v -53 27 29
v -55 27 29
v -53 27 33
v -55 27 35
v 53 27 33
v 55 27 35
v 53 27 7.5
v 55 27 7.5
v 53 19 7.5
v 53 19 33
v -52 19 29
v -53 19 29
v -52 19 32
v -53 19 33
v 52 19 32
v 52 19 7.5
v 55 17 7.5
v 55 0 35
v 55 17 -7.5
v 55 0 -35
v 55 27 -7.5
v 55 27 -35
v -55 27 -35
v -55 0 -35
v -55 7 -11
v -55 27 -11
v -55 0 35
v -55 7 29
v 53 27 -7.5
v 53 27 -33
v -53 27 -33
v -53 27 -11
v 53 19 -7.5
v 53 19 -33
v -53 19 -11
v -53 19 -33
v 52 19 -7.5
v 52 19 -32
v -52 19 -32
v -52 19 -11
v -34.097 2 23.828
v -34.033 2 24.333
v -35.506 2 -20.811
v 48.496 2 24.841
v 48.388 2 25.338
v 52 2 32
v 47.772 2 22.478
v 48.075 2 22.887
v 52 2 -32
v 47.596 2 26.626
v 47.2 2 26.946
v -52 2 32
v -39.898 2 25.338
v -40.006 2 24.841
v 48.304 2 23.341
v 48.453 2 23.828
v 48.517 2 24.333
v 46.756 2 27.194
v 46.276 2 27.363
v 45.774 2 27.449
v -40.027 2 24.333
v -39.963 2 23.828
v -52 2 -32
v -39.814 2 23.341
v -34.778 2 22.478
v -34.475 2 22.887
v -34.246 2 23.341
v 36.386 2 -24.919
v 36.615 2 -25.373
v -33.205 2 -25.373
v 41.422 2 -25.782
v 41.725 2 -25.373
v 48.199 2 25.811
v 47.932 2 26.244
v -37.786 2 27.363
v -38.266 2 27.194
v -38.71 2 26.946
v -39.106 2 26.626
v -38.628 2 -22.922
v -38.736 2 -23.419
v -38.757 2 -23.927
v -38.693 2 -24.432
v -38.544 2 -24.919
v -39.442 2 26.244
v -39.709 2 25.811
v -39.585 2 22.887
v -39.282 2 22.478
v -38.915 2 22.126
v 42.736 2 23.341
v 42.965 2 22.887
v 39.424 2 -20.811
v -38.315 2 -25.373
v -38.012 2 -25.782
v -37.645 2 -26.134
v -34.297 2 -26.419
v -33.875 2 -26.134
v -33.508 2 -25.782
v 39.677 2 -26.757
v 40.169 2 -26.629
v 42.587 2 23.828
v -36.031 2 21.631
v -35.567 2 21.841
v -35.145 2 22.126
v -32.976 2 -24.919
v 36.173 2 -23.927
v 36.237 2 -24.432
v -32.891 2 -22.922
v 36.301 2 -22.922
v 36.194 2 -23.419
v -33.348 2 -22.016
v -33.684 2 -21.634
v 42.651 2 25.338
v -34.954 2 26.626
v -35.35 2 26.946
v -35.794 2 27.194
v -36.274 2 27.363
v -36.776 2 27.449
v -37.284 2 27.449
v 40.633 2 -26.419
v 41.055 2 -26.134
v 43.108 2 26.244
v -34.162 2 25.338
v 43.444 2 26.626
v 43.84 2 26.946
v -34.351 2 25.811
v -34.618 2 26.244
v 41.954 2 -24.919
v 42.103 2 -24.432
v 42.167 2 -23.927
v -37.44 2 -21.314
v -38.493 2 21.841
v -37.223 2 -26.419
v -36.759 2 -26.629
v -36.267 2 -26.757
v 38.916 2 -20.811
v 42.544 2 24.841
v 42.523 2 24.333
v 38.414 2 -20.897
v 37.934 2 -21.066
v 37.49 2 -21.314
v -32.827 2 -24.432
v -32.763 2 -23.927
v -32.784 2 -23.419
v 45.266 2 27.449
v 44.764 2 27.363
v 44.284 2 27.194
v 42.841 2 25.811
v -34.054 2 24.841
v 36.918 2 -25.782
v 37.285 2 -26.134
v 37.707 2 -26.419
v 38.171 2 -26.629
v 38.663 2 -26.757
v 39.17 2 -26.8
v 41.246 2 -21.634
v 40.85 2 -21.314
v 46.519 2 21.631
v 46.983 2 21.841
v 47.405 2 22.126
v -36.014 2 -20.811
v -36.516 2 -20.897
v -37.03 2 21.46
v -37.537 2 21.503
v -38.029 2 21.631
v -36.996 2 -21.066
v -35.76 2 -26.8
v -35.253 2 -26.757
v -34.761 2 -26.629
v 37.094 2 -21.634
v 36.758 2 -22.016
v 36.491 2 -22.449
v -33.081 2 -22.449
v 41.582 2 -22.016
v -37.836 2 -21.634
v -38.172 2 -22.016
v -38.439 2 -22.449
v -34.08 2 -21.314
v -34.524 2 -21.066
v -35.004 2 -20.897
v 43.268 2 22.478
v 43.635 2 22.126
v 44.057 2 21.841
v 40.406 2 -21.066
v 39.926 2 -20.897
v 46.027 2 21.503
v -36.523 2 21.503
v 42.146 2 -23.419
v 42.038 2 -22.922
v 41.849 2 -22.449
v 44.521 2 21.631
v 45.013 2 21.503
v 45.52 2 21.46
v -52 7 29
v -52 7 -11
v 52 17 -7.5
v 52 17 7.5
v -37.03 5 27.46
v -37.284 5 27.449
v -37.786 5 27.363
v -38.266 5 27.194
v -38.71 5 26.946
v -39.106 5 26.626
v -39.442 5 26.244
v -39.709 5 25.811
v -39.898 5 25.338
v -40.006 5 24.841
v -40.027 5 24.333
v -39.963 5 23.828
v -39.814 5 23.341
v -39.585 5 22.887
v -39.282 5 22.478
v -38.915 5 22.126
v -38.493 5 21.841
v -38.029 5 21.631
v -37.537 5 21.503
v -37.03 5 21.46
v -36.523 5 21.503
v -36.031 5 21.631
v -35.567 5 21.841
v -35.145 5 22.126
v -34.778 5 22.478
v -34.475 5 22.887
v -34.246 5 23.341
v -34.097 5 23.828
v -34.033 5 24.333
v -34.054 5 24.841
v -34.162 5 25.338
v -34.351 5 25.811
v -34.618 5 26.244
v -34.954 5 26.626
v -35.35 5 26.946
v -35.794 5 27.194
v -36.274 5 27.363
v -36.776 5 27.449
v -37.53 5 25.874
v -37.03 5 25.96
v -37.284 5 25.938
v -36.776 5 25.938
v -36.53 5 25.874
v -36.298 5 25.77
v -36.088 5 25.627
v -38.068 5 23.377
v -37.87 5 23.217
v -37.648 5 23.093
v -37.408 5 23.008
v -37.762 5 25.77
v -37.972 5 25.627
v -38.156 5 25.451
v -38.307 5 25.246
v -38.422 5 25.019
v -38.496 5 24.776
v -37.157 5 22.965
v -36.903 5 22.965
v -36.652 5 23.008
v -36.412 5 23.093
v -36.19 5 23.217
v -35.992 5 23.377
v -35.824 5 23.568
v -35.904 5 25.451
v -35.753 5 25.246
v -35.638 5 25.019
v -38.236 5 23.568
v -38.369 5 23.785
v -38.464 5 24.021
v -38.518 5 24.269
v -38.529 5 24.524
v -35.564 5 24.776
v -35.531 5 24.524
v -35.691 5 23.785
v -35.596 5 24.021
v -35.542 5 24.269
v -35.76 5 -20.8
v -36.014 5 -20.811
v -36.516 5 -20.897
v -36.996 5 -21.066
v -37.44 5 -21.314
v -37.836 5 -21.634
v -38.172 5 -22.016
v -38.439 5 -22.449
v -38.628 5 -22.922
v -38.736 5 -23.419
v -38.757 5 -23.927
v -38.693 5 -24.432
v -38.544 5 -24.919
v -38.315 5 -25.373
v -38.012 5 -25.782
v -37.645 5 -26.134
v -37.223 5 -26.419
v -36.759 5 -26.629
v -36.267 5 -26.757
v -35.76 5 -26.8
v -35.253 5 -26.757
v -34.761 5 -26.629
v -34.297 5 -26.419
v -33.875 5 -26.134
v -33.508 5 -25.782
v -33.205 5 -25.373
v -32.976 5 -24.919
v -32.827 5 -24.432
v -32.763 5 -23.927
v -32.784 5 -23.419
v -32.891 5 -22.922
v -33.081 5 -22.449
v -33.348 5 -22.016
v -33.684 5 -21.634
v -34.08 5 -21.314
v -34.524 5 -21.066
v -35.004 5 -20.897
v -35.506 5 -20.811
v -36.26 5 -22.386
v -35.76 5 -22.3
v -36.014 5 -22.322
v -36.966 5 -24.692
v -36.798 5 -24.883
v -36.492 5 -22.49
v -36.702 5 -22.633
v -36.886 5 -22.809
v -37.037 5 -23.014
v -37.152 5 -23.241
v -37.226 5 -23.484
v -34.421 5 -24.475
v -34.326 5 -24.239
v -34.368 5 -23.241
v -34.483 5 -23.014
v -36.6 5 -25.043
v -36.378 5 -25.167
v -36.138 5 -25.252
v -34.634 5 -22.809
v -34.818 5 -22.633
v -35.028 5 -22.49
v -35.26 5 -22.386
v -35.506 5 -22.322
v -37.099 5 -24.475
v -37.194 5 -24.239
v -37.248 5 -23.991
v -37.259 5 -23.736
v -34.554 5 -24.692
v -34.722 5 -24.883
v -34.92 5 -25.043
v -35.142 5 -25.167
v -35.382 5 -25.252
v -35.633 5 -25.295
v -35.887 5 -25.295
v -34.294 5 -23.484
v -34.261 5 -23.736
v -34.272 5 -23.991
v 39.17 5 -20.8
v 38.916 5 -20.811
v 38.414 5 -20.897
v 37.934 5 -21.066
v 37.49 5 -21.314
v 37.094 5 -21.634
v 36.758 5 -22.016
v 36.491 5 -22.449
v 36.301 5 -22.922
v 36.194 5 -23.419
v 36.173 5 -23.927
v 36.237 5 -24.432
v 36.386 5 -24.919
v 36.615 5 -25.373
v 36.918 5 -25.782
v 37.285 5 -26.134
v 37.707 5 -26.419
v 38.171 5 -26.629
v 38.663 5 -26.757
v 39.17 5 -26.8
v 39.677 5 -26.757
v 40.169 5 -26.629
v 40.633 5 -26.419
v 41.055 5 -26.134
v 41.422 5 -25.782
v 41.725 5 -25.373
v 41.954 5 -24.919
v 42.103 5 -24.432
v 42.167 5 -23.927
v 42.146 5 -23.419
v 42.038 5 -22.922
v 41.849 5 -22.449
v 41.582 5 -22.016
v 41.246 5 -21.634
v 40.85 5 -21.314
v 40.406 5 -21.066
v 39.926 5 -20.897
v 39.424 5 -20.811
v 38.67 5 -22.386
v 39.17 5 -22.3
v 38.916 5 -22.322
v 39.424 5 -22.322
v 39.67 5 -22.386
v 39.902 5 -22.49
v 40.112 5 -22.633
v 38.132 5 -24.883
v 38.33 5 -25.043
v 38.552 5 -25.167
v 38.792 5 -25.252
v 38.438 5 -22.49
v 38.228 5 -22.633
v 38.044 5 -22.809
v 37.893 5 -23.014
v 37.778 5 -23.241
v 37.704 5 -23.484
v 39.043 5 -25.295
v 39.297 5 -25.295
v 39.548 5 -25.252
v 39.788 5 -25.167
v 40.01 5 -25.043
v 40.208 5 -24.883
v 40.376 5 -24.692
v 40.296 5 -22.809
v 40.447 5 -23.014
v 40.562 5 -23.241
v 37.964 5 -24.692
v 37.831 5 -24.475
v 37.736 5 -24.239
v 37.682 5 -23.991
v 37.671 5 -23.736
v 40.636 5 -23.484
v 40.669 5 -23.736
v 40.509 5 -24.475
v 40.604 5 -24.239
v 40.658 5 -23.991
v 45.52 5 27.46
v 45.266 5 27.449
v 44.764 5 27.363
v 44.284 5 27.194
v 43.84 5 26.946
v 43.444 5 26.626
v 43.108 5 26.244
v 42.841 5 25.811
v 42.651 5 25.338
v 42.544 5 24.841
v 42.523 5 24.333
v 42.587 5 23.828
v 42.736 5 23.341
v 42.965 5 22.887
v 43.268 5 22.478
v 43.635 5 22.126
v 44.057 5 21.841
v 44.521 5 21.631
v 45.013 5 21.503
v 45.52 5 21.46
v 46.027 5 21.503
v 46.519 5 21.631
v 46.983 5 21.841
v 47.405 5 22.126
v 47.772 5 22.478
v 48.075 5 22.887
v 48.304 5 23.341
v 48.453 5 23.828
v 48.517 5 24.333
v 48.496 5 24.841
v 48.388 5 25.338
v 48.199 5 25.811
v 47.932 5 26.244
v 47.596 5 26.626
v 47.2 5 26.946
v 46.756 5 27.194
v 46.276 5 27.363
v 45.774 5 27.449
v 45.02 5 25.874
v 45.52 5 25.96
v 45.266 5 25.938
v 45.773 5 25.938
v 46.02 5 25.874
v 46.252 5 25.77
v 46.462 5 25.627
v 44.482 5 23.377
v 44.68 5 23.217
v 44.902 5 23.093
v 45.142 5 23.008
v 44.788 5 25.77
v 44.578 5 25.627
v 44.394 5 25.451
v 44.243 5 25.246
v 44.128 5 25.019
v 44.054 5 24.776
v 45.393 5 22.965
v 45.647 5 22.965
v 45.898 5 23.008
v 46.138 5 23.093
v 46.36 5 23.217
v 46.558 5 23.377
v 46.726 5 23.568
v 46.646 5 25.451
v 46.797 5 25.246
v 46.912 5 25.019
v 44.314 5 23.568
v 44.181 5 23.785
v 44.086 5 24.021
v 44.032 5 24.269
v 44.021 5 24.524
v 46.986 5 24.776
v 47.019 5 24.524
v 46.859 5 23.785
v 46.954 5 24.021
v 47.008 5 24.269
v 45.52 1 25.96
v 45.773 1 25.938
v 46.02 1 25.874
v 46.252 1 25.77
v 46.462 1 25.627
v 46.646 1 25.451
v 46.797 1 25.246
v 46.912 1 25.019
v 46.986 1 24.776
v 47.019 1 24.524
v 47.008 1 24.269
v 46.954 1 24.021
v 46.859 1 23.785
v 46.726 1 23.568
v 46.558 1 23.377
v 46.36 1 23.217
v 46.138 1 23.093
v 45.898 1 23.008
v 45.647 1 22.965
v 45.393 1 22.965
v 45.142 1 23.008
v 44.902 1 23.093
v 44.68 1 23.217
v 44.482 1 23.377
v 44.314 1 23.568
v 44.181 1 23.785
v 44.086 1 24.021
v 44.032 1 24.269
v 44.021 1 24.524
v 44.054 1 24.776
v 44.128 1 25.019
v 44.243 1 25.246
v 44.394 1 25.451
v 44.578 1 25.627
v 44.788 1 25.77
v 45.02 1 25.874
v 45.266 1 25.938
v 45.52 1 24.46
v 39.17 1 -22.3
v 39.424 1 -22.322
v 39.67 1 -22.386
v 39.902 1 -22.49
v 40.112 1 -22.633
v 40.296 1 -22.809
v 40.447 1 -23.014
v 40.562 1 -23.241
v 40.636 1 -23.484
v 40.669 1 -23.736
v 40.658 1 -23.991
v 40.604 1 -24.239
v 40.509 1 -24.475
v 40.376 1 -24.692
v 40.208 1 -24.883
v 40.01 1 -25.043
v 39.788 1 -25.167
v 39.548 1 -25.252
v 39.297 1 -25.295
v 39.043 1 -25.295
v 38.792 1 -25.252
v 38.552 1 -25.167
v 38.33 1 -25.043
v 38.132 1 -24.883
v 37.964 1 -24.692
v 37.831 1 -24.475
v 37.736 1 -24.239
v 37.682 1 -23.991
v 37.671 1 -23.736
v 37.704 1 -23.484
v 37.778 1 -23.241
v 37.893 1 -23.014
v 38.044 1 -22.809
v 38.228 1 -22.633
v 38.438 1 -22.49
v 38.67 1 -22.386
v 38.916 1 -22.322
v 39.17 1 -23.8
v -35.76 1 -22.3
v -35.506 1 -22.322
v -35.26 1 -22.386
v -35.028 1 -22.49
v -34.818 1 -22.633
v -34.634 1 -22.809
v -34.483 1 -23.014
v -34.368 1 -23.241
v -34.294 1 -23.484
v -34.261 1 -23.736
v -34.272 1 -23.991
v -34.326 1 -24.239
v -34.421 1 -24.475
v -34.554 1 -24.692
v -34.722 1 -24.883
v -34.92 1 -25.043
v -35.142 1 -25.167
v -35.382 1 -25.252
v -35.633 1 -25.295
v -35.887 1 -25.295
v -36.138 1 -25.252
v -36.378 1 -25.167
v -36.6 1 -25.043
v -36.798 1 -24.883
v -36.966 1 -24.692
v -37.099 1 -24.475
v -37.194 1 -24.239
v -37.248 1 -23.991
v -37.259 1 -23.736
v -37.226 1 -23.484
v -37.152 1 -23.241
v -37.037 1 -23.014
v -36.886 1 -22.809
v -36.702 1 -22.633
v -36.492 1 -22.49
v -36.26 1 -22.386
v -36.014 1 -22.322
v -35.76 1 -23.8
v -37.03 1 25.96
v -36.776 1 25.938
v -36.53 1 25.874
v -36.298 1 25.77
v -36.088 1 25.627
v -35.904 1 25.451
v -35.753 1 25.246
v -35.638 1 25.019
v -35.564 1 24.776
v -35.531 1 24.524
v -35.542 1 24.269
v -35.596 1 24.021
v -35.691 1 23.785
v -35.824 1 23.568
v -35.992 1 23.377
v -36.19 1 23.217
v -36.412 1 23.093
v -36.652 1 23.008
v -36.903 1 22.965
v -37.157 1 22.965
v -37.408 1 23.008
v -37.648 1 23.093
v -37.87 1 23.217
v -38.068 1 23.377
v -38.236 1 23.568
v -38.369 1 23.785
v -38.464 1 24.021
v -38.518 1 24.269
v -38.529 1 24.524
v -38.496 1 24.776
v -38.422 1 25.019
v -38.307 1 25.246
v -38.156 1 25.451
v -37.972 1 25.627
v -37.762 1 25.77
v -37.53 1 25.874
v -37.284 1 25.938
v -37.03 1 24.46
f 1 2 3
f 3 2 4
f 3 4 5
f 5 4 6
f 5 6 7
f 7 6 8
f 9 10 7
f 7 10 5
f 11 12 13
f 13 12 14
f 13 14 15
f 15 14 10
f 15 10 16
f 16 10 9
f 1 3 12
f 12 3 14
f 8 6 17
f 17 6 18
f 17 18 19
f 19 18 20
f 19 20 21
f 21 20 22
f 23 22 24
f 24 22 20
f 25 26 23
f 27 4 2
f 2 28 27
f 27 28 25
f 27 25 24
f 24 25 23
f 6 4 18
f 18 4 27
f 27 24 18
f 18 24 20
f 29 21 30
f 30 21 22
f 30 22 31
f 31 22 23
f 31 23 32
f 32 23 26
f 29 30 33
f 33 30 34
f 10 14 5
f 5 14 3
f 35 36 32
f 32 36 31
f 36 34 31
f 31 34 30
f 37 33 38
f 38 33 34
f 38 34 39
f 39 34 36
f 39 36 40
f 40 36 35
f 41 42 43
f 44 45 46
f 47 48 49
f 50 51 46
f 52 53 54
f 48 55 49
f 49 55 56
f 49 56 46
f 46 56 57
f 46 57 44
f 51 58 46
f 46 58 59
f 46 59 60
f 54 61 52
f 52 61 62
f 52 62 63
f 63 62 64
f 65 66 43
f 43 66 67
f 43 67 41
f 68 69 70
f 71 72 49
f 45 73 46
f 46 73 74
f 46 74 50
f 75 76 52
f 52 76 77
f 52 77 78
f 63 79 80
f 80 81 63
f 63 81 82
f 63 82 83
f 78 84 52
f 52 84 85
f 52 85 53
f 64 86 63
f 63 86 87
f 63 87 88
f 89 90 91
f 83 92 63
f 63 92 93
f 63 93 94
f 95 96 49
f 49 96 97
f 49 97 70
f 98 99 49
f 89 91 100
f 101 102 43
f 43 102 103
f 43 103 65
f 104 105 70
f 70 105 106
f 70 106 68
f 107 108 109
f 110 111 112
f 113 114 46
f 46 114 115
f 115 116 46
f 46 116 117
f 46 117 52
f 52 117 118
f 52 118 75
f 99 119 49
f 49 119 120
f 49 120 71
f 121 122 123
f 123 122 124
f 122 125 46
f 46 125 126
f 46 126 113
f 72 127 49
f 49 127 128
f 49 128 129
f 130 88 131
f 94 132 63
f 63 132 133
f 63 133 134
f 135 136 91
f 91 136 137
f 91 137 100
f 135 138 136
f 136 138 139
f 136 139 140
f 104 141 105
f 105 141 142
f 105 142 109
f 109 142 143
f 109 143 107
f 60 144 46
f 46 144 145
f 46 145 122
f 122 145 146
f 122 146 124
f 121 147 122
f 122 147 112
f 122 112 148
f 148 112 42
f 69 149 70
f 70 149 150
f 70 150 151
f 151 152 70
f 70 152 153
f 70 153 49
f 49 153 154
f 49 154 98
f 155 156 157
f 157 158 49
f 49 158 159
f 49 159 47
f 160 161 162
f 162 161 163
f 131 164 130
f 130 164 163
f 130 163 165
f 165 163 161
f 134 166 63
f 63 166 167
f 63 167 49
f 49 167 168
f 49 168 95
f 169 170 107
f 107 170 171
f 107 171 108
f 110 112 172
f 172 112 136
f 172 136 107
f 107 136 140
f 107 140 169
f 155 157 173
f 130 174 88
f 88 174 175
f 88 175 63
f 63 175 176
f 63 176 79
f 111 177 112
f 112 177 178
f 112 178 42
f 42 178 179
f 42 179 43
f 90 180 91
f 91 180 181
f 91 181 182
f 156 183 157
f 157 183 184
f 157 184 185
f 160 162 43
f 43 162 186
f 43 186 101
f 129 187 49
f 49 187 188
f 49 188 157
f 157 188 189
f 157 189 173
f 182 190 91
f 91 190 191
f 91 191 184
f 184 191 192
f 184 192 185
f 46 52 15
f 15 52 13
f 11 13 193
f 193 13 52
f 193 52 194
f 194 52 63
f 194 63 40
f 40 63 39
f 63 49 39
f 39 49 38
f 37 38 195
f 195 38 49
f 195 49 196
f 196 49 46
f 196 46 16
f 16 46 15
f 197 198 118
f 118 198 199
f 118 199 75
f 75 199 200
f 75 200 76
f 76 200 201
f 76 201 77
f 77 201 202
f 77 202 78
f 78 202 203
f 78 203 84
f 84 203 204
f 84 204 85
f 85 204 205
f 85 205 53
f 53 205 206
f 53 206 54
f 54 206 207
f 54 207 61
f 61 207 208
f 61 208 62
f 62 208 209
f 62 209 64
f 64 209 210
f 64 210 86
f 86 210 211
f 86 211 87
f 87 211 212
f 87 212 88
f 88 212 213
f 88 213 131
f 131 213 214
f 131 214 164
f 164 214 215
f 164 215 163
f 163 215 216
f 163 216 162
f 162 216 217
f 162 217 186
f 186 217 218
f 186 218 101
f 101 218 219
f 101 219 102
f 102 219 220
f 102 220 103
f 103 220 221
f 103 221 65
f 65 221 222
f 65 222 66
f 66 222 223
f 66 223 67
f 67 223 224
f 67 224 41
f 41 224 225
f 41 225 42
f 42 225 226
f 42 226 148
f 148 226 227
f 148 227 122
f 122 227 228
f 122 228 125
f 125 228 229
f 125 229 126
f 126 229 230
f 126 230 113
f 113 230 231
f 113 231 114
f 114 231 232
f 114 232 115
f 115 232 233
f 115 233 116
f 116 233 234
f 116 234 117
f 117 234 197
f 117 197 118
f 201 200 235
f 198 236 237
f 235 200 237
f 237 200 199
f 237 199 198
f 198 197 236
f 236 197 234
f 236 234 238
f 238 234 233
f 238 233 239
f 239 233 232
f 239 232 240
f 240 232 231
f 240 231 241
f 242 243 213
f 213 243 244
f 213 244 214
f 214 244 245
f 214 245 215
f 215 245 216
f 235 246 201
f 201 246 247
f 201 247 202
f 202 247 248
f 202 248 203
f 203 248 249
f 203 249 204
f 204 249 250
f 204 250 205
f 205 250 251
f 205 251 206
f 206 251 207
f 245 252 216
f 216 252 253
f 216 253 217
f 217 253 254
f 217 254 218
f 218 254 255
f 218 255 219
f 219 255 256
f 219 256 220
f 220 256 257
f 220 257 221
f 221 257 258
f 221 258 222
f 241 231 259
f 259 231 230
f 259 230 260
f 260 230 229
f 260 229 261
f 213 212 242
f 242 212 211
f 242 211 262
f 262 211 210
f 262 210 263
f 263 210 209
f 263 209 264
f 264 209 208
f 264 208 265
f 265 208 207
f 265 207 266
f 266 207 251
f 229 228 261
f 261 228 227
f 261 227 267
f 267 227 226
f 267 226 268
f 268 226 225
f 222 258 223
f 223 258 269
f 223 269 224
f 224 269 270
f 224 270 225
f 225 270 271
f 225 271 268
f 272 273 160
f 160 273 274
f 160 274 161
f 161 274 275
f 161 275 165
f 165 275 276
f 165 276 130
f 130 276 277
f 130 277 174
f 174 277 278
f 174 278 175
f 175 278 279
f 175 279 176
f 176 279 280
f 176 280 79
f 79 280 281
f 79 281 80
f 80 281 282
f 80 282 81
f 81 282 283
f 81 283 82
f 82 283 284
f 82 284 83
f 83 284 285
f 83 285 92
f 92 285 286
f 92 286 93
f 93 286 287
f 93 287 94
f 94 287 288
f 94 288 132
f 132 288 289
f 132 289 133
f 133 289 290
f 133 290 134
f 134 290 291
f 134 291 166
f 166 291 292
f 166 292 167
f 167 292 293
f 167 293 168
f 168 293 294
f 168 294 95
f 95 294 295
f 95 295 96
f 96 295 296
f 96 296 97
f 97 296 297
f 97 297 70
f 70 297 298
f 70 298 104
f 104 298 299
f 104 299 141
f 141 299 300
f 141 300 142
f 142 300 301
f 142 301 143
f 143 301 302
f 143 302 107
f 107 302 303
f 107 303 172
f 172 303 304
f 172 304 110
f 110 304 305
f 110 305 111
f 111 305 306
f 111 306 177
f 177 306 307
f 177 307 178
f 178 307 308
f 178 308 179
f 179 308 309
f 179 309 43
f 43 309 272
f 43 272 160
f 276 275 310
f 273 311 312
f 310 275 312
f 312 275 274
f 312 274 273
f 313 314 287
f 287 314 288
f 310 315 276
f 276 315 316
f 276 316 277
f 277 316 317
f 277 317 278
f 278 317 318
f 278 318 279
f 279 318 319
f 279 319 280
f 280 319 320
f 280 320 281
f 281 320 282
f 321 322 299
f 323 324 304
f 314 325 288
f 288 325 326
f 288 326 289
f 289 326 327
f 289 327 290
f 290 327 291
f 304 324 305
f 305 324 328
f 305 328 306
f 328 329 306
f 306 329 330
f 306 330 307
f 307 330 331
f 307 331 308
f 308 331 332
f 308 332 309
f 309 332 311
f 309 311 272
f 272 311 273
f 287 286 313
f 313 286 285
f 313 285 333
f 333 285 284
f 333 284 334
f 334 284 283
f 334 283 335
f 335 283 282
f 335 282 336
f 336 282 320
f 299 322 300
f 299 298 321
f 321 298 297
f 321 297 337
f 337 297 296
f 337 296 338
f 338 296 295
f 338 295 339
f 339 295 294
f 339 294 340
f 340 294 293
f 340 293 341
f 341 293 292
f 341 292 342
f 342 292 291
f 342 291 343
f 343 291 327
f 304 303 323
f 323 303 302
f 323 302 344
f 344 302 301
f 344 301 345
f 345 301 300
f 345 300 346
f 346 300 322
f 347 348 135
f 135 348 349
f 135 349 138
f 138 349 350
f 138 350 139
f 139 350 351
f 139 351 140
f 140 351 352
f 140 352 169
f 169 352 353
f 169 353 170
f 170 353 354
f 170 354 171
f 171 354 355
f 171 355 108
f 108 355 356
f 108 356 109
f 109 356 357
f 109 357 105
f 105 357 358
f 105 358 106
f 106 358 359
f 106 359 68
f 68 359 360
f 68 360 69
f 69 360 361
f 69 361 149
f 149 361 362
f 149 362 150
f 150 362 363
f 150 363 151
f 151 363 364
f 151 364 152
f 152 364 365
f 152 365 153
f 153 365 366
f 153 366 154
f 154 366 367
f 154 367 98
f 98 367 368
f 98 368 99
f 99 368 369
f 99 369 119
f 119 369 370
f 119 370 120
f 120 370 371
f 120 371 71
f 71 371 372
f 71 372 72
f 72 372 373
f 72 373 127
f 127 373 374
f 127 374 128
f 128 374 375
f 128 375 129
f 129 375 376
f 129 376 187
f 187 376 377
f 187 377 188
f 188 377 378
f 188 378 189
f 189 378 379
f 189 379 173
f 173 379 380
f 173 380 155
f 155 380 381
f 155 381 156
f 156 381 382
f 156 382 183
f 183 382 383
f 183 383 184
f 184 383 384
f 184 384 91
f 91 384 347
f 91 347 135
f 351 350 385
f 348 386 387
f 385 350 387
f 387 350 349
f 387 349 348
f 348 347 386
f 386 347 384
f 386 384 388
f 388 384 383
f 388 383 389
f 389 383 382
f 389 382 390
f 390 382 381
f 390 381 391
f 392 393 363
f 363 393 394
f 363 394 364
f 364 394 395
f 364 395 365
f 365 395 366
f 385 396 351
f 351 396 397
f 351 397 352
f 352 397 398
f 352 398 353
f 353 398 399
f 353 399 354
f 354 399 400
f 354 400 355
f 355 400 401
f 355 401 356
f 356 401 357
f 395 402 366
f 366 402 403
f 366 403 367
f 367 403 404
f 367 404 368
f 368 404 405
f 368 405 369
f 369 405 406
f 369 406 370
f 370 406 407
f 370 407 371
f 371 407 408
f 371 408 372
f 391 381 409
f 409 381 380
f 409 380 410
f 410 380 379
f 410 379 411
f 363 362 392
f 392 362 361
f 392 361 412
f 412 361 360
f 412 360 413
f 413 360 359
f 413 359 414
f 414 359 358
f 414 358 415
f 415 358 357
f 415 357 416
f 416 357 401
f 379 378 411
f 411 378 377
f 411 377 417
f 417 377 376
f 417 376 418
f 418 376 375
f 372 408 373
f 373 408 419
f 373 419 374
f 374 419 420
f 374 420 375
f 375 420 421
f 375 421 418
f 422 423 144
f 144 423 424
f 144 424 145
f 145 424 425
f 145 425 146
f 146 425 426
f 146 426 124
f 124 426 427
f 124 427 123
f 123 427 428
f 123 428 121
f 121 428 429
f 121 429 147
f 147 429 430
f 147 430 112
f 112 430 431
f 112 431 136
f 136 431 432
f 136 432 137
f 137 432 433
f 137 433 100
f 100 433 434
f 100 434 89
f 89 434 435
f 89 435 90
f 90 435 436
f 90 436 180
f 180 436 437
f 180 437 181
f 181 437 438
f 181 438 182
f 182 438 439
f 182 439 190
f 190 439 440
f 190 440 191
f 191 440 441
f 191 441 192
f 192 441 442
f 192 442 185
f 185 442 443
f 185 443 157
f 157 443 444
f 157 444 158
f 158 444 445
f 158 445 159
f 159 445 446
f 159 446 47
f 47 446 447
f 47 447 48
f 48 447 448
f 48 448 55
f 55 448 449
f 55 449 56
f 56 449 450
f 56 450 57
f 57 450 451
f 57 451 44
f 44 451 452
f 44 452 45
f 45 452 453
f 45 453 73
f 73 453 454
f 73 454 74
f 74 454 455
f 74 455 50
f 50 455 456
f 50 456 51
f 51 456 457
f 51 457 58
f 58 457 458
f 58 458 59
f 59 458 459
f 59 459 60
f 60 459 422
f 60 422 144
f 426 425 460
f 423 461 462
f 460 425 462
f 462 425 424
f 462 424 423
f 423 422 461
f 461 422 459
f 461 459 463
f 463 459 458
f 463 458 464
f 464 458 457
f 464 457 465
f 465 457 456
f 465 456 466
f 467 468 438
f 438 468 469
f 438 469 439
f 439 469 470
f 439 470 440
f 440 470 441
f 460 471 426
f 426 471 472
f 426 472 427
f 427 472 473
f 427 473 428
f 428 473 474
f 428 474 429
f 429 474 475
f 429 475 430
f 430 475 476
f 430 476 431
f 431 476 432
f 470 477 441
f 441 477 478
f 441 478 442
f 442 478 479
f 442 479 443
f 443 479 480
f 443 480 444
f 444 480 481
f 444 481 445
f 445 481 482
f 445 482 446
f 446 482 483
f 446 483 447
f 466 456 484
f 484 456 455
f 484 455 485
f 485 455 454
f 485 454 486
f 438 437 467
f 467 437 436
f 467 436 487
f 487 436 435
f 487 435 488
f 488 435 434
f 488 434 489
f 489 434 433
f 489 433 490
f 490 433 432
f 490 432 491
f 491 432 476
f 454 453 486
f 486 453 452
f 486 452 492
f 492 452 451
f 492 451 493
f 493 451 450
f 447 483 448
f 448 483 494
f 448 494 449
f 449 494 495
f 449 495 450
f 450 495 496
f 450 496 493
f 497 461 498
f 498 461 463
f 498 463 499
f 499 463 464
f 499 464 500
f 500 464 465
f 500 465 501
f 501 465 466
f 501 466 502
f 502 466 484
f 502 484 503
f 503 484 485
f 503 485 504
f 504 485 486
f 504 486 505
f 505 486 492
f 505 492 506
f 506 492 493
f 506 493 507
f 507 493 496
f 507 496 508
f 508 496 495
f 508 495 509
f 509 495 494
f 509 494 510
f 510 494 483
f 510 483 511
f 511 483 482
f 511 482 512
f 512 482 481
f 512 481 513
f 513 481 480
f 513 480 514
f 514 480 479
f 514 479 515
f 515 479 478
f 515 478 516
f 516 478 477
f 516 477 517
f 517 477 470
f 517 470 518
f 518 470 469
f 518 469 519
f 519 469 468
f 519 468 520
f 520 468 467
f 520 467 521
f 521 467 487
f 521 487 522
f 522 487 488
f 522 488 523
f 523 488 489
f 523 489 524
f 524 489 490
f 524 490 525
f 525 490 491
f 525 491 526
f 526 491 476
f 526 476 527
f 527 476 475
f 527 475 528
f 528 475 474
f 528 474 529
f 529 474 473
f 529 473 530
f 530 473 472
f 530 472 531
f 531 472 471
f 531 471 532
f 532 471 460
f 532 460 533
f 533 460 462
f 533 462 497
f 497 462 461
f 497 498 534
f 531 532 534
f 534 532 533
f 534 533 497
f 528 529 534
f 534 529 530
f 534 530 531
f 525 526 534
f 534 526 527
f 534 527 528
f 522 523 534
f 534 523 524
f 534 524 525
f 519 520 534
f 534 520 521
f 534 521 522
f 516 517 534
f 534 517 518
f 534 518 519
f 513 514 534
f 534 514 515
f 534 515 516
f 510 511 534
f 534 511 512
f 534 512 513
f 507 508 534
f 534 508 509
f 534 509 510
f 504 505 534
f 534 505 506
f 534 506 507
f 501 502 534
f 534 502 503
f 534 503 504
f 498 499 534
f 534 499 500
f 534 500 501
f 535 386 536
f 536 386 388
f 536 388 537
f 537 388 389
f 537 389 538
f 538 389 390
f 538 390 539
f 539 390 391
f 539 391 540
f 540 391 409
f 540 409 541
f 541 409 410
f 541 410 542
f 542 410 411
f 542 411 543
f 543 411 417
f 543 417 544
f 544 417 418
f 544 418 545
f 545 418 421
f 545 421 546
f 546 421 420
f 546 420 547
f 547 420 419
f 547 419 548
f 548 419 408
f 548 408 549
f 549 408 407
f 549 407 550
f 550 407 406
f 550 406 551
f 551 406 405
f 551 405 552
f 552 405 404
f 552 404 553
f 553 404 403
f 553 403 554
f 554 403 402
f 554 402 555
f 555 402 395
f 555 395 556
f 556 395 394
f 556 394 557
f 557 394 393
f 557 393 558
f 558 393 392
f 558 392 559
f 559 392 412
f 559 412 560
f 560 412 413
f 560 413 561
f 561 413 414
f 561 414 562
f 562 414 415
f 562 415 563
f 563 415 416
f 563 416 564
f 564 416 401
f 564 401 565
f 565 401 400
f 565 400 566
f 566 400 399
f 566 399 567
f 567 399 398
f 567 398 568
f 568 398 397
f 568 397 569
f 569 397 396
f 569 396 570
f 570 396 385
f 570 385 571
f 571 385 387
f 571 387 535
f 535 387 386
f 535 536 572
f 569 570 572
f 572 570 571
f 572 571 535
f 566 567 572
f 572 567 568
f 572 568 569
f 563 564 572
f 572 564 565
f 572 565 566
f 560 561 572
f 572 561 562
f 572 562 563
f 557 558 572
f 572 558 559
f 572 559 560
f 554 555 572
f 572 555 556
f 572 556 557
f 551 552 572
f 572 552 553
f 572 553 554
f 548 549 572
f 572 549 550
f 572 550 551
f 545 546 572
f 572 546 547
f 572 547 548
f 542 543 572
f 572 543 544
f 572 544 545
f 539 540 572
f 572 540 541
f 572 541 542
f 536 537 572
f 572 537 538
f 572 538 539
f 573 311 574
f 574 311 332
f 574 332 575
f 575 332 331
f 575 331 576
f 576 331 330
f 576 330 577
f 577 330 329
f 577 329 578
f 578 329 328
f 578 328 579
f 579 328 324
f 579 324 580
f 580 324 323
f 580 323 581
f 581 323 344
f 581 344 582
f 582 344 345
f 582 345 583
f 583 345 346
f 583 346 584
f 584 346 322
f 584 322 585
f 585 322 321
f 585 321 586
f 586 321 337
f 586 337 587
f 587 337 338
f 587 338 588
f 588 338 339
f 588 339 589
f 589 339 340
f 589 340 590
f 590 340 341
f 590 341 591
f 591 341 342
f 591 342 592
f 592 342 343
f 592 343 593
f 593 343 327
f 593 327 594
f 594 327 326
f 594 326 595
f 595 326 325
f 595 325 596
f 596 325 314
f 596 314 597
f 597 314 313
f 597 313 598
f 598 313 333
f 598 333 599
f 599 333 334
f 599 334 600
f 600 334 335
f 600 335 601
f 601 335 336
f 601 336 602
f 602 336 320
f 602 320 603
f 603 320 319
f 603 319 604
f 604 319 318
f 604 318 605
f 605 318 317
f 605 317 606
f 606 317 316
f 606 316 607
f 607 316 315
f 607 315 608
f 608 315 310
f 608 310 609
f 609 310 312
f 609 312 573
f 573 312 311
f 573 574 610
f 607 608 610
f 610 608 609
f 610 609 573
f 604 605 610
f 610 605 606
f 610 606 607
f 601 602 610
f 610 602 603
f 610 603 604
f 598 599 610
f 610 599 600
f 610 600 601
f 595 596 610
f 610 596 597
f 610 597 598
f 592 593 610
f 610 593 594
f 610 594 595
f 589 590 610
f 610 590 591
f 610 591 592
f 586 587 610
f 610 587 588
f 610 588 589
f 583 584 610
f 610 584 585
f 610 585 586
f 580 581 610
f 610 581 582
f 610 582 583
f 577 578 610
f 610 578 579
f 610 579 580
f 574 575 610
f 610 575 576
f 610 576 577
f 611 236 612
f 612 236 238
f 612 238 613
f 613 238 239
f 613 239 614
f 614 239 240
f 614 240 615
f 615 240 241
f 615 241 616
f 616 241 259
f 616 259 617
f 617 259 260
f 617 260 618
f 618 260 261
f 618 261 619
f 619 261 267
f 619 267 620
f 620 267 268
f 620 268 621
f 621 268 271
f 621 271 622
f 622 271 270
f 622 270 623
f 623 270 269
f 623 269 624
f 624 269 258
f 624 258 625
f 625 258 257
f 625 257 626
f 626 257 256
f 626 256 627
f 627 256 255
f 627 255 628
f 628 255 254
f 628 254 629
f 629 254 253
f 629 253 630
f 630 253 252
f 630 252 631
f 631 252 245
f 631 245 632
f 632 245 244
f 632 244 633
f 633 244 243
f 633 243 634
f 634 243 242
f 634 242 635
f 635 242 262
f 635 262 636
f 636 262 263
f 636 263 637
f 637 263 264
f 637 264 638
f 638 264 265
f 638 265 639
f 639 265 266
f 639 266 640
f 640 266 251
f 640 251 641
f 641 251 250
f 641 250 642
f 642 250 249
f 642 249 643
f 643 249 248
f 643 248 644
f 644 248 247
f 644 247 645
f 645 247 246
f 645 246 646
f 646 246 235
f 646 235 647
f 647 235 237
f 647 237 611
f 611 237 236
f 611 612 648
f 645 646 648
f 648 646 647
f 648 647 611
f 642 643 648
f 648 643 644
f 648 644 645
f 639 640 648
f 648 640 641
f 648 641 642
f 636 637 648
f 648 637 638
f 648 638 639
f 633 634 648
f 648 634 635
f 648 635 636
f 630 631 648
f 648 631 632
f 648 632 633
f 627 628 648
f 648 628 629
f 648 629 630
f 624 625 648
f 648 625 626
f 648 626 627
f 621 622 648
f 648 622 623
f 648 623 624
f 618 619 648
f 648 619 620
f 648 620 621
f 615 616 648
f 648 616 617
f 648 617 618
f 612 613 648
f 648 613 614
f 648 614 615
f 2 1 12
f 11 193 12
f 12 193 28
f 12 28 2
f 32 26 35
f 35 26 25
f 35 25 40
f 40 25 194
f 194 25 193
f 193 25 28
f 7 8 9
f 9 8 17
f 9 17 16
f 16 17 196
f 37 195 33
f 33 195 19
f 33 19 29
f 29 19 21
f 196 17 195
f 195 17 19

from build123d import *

# Parameters (mm, degrees)
CROQUIS1_W              = 110
CROQUIS1_H              = 70
SALIENTE_EXTRUIR1_DEPTH = 2
CROQUIS2_W              = 110
CROQUIS2_H              = 70
CROQUIS2_W_2            = 104
CROQUIS2_H_2            = 64
SALIENTE_EXTRUIR2_DEPTH = 25
CROQUIS3_W              = 106
CROQUIS3_H              = 66
CORTAR_EXTRUIR1_DEPTH   = 8
CROQUIS4_R              = 3
SALIENTE_EXTRUIR3_DEPTH = 3
CROQUIS6_R              = 1.5
CORTAR_EXTRUIR2_DEPTH   = 4
CROQUIS7_W              = 6
CROQUIS7_H              = 40
CORTAR_EXTRUIR3_DEPTH   = 20
CROQUIS8_W              = 9.353871772
CROQUIS8_H              = 15
CORTAR_EXTRUIR4_DEPTH   = 10


with BuildPart() as part:
    # Croquis1 → Saliente-Extruir1 (new body)
    with BuildSketch(Plane(origin=(0, 0, 0), x_dir=(1, 0, 0), z_dir=(0, 1, 0))):
        Rectangle(CROQUIS1_W, CROQUIS1_H)
    extrude(amount=SALIENTE_EXTRUIR1_DEPTH)

    # Croquis2 → Saliente-Extruir2 (add)
    with BuildSketch(Plane(origin=(0, 2, 0), x_dir=(1, 0, 0), z_dir=(0, 1, 0))):
        Rectangle(CROQUIS2_W, CROQUIS2_H)
        Rectangle(CROQUIS2_W_2, CROQUIS2_H_2, mode=Mode.SUBTRACT)
    extrude(amount=SALIENTE_EXTRUIR2_DEPTH)

    # Croquis3 → Cortar-Extruir1 (cut)
    with BuildSketch(Plane(origin=(0, 27, 0), x_dir=(1, 0, 0), z_dir=(0, 1, 0))):
        Rectangle(CROQUIS3_W, CROQUIS3_H)
    extrude(amount=-CORTAR_EXTRUIR1_DEPTH, mode=Mode.SUBTRACT)

    # Croquis4 → Saliente-Extruir3 (add)
    with BuildSketch(Plane(origin=(0, 2, 0), x_dir=(1, 0, 0), z_dir=(0, 1, 0))):
        with Locations(Location((-37.03, -24.46, 0), (0, 0, 90))):
            Circle(CROQUIS4_R)
        with Locations(Location((-35.76, 23.8, 0), (0, 0, 90))):
            Circle(CROQUIS4_R)
        with Locations(Location((39.17, 23.8, 0), (0, 0, 90))):
            Circle(CROQUIS4_R)
        with Locations(Location((45.52, -24.46, 0), (0, 0, 90))):
            Circle(CROQUIS4_R)
    extrude(amount=SALIENTE_EXTRUIR3_DEPTH)

    # Croquis6 → Cortar-Extruir2 (cut)
    with BuildSketch(Plane(origin=(0, 5, 0), x_dir=(1, 0, 0), z_dir=(0, 1, 0))):
        with Locations(Location((-35.76, 23.8, 0), (0, 0, 270))):
            Circle(CROQUIS6_R)
        with Locations(Location((-37.03, -24.46, 0), (0, 0, 270))):
            Circle(CROQUIS6_R)
        with Locations(Location((39.17, 23.8, 0), (0, 0, 270))):
            Circle(CROQUIS6_R)
        with Locations(Location((45.52, -24.46, 0), (0, 0, 270))):
            Circle(CROQUIS6_R)
    extrude(amount=-CORTAR_EXTRUIR2_DEPTH, mode=Mode.SUBTRACT)

    # Croquis7 → Cortar-Extruir3 (cut)
    with BuildSketch(Plane(origin=(0, 27, 0), x_dir=(1, 0, 0), z_dir=(0, 1, 0))):
        with Locations((-55, -9)):
            Rectangle(CROQUIS7_W, CROQUIS7_H)
    extrude(amount=-CORTAR_EXTRUIR3_DEPTH, mode=Mode.SUBTRACT)

    # Croquis8 → Cortar-Extruir4 (cut)
    with BuildSketch(Plane(origin=(0, 27, 0), x_dir=(1, 0, 0), z_dir=(0, 1, 0))):
        with Locations((53, 0)):
            Rectangle(CROQUIS8_W, CROQUIS8_H)
    extrude(amount=-CORTAR_EXTRUIR4_DEPTH, mode=Mode.SUBTRACT)


solid = part.part
